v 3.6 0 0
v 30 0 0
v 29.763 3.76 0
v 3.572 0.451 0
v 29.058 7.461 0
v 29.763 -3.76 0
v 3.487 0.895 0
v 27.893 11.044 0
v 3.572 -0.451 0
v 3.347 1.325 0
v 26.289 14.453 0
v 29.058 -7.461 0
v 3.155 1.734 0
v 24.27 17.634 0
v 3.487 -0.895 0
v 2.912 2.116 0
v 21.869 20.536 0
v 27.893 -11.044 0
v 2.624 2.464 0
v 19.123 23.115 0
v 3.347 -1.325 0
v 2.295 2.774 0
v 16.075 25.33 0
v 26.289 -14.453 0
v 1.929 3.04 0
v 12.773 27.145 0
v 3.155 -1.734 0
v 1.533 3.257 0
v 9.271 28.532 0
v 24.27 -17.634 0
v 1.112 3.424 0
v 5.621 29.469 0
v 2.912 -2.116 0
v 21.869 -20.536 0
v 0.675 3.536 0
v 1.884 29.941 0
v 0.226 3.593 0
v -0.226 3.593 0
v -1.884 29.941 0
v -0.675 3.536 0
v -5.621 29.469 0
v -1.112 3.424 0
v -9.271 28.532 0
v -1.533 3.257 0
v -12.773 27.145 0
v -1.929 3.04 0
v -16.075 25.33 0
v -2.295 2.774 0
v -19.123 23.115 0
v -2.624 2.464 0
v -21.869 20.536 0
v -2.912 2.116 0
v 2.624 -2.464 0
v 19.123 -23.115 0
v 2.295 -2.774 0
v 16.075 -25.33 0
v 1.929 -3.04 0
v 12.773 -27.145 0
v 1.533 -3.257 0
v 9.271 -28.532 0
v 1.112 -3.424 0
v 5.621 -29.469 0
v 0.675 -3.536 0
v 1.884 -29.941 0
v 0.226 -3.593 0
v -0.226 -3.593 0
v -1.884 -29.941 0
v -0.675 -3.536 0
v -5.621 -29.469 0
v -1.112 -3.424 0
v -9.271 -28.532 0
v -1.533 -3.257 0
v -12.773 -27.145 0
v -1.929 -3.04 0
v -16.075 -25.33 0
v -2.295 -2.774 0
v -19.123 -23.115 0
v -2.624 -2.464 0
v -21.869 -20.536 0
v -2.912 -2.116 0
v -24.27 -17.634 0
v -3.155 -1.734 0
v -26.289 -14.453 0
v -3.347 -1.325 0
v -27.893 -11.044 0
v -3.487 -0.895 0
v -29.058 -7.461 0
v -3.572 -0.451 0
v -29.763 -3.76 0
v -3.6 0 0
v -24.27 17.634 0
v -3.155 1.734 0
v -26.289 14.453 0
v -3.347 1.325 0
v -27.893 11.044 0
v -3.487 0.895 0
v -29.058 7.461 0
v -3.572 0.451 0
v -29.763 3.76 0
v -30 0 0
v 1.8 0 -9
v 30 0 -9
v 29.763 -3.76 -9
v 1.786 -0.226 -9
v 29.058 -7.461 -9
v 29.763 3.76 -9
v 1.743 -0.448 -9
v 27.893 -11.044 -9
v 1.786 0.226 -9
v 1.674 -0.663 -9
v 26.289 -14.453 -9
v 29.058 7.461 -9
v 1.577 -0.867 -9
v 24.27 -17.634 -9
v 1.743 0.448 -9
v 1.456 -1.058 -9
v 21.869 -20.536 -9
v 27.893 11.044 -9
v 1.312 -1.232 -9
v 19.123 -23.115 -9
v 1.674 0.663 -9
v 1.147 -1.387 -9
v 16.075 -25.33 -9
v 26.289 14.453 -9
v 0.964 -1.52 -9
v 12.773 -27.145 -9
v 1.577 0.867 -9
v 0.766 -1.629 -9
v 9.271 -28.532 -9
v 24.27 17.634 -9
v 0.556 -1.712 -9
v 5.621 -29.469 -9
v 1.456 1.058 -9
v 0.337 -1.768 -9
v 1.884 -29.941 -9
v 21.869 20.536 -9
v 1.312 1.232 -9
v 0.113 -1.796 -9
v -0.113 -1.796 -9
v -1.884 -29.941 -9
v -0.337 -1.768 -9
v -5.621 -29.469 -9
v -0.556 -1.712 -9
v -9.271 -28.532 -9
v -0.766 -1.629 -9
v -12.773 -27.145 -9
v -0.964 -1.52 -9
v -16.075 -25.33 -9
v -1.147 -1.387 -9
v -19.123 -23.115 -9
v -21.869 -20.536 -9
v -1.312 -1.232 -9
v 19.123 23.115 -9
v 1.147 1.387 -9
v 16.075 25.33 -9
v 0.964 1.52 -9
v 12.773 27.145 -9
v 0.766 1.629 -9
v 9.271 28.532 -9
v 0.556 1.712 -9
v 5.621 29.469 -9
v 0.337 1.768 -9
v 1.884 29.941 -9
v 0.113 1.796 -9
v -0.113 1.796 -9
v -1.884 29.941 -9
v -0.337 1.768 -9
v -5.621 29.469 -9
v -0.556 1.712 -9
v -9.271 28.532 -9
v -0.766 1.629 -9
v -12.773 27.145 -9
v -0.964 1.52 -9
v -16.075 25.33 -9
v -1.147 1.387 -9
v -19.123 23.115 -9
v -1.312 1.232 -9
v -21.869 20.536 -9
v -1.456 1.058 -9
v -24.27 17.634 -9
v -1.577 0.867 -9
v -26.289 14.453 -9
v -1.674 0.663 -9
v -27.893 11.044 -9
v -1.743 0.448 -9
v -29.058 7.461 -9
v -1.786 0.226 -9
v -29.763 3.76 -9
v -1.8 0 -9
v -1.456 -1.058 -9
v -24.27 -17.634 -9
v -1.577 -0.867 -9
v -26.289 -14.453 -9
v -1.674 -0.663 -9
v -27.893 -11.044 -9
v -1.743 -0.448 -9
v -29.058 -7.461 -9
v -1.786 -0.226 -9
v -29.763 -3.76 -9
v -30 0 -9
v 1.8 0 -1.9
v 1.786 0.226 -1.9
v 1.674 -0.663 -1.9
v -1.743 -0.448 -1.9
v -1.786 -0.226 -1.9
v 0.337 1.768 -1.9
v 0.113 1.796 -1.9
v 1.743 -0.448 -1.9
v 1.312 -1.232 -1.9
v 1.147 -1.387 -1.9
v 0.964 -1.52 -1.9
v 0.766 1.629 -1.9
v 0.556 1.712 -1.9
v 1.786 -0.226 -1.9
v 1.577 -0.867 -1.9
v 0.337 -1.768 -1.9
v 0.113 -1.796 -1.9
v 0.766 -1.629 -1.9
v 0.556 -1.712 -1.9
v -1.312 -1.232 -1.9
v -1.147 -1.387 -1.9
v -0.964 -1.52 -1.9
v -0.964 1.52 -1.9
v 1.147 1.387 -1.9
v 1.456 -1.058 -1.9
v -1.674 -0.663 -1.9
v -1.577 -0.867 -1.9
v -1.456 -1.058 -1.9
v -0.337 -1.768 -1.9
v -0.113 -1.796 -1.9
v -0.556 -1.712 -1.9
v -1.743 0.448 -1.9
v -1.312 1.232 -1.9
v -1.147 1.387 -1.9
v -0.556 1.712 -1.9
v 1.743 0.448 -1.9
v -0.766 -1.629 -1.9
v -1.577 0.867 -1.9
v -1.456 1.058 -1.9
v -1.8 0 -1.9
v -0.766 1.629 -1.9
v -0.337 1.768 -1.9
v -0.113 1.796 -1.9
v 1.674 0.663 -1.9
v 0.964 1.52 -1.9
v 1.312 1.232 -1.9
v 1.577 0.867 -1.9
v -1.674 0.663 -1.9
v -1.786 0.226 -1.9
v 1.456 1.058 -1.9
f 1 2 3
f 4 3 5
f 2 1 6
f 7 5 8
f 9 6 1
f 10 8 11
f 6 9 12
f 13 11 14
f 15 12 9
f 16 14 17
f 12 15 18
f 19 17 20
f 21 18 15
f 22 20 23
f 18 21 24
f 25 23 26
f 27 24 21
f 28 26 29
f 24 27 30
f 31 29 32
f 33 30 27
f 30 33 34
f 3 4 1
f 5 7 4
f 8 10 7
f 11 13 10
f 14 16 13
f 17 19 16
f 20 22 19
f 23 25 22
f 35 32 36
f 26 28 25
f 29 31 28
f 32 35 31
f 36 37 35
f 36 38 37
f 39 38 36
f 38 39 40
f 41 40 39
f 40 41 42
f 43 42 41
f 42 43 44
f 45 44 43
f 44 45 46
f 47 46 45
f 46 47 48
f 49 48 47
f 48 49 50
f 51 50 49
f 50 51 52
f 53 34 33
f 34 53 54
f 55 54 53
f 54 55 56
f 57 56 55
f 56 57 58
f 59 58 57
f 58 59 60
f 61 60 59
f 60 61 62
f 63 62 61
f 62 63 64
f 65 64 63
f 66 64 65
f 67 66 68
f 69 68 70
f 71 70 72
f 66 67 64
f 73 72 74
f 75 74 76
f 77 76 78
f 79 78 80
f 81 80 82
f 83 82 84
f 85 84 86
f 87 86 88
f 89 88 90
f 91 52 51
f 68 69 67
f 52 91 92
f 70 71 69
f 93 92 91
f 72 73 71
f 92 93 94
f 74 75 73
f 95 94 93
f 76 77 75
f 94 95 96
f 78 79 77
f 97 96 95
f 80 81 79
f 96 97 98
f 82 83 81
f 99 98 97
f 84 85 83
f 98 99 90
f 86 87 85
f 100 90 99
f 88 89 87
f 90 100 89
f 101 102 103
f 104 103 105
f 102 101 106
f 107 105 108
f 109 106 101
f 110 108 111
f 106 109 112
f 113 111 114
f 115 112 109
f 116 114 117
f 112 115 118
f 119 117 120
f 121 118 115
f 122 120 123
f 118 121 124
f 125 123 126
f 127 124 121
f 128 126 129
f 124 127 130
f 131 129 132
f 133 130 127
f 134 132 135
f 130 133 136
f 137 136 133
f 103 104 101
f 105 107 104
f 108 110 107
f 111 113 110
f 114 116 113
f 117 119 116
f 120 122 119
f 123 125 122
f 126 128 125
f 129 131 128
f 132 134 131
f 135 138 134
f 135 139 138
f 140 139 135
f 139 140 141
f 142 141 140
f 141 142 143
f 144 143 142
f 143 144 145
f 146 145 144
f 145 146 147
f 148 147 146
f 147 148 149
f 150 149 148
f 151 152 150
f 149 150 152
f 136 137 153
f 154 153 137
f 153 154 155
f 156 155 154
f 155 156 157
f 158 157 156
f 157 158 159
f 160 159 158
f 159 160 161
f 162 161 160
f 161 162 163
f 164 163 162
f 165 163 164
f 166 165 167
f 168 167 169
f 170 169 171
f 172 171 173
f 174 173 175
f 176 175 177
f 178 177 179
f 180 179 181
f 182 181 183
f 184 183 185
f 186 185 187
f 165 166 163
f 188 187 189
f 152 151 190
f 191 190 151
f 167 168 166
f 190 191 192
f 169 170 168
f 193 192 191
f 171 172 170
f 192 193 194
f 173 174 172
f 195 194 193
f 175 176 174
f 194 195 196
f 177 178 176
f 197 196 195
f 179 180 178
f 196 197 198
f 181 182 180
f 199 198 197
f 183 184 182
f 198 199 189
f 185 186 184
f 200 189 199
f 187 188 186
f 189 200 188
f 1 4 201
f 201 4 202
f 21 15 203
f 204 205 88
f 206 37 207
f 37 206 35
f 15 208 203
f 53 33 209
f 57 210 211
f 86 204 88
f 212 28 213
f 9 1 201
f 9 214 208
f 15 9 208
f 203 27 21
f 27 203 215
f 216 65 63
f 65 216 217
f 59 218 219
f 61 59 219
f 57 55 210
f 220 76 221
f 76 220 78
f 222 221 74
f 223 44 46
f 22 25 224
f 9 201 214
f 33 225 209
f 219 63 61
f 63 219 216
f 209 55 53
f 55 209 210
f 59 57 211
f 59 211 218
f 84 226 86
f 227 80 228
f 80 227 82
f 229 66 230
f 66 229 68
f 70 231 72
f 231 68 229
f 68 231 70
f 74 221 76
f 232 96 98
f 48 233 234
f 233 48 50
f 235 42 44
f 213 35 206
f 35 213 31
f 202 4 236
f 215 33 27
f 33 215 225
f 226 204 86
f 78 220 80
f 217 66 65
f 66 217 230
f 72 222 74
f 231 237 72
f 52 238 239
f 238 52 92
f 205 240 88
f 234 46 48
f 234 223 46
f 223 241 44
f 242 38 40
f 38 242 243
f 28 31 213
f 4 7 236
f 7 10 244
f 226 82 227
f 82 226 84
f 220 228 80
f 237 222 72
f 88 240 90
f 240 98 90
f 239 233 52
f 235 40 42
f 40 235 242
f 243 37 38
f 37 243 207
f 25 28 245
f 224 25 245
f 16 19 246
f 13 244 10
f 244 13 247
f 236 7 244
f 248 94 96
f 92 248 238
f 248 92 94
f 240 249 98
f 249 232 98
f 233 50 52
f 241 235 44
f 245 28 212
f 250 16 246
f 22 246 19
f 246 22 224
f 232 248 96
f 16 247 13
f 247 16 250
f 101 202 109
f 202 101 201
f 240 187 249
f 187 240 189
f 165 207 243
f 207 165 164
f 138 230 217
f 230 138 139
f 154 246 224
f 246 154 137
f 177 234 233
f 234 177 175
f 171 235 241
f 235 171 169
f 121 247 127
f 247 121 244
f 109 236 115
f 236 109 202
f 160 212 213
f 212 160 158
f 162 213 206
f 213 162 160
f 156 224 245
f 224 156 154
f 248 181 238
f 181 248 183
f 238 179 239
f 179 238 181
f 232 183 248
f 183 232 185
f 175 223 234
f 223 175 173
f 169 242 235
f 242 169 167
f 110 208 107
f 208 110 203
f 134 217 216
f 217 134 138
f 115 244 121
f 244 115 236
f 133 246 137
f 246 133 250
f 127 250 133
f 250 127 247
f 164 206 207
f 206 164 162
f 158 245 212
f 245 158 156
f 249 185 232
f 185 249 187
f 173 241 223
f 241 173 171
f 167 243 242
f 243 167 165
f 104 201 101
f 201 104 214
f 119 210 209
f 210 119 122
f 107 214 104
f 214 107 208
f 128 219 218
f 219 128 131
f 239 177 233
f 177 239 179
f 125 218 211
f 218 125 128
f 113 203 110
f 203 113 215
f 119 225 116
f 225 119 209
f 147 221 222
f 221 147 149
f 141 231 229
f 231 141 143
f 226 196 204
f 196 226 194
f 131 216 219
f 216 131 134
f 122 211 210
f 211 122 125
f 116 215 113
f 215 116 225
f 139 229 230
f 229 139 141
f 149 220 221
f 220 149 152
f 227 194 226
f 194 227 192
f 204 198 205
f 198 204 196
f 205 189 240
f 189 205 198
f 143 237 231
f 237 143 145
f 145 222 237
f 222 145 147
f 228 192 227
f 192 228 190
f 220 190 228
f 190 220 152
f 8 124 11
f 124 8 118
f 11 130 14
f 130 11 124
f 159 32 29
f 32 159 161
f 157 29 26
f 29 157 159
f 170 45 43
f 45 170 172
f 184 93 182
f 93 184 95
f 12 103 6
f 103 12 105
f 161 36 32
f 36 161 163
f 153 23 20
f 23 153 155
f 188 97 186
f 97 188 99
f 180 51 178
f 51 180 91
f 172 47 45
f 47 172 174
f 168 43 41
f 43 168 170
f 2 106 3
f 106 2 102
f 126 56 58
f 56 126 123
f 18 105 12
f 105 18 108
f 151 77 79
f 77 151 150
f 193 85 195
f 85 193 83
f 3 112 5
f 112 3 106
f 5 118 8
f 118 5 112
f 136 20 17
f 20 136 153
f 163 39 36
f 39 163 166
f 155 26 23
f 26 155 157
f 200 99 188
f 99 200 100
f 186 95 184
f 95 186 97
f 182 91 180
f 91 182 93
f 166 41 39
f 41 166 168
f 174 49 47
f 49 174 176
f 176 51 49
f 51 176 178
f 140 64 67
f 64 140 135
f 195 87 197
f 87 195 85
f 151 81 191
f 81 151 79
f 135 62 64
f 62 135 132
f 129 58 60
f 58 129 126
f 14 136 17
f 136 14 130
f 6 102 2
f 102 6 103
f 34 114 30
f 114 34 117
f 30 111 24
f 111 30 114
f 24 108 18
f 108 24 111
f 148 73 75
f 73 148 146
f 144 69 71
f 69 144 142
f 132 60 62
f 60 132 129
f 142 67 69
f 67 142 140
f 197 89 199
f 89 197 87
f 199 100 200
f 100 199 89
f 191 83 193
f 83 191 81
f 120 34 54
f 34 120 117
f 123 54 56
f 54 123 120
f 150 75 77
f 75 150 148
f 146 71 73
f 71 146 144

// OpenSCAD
$fn = 50;


difference() {
	union() {
		translate(v = [0, 0, -9.0000000000]) {
			cylinder(h = 9, r = 30.0000000000);
		}
	}
	union() {
		translate(v = [0, 0, 0]) {
			rotate(a = [0, 0, 0]) {
				difference() {
					union() {
						#translate(v = [0, 0, -9.0000000000]) {
							cylinder(h = 9, r = 1.5000000000);
						}
						#translate(v = [0, 0, -1.9000000000]) {
							cylinder(h = 1.9000000000, r1 = 1.8000000000, r2 = 3.6000000000);
						}
						#translate(v = [0, 0, -9.0000000000]) {
							cylinder(h = 9, r = 1.8000000000);
						}
						#translate(v = [0, 0, -9.0000000000]) {
							cylinder(h = 9, r = 1.5000000000);
						}
					}
					union();
				}
			}
		}
	}
}
